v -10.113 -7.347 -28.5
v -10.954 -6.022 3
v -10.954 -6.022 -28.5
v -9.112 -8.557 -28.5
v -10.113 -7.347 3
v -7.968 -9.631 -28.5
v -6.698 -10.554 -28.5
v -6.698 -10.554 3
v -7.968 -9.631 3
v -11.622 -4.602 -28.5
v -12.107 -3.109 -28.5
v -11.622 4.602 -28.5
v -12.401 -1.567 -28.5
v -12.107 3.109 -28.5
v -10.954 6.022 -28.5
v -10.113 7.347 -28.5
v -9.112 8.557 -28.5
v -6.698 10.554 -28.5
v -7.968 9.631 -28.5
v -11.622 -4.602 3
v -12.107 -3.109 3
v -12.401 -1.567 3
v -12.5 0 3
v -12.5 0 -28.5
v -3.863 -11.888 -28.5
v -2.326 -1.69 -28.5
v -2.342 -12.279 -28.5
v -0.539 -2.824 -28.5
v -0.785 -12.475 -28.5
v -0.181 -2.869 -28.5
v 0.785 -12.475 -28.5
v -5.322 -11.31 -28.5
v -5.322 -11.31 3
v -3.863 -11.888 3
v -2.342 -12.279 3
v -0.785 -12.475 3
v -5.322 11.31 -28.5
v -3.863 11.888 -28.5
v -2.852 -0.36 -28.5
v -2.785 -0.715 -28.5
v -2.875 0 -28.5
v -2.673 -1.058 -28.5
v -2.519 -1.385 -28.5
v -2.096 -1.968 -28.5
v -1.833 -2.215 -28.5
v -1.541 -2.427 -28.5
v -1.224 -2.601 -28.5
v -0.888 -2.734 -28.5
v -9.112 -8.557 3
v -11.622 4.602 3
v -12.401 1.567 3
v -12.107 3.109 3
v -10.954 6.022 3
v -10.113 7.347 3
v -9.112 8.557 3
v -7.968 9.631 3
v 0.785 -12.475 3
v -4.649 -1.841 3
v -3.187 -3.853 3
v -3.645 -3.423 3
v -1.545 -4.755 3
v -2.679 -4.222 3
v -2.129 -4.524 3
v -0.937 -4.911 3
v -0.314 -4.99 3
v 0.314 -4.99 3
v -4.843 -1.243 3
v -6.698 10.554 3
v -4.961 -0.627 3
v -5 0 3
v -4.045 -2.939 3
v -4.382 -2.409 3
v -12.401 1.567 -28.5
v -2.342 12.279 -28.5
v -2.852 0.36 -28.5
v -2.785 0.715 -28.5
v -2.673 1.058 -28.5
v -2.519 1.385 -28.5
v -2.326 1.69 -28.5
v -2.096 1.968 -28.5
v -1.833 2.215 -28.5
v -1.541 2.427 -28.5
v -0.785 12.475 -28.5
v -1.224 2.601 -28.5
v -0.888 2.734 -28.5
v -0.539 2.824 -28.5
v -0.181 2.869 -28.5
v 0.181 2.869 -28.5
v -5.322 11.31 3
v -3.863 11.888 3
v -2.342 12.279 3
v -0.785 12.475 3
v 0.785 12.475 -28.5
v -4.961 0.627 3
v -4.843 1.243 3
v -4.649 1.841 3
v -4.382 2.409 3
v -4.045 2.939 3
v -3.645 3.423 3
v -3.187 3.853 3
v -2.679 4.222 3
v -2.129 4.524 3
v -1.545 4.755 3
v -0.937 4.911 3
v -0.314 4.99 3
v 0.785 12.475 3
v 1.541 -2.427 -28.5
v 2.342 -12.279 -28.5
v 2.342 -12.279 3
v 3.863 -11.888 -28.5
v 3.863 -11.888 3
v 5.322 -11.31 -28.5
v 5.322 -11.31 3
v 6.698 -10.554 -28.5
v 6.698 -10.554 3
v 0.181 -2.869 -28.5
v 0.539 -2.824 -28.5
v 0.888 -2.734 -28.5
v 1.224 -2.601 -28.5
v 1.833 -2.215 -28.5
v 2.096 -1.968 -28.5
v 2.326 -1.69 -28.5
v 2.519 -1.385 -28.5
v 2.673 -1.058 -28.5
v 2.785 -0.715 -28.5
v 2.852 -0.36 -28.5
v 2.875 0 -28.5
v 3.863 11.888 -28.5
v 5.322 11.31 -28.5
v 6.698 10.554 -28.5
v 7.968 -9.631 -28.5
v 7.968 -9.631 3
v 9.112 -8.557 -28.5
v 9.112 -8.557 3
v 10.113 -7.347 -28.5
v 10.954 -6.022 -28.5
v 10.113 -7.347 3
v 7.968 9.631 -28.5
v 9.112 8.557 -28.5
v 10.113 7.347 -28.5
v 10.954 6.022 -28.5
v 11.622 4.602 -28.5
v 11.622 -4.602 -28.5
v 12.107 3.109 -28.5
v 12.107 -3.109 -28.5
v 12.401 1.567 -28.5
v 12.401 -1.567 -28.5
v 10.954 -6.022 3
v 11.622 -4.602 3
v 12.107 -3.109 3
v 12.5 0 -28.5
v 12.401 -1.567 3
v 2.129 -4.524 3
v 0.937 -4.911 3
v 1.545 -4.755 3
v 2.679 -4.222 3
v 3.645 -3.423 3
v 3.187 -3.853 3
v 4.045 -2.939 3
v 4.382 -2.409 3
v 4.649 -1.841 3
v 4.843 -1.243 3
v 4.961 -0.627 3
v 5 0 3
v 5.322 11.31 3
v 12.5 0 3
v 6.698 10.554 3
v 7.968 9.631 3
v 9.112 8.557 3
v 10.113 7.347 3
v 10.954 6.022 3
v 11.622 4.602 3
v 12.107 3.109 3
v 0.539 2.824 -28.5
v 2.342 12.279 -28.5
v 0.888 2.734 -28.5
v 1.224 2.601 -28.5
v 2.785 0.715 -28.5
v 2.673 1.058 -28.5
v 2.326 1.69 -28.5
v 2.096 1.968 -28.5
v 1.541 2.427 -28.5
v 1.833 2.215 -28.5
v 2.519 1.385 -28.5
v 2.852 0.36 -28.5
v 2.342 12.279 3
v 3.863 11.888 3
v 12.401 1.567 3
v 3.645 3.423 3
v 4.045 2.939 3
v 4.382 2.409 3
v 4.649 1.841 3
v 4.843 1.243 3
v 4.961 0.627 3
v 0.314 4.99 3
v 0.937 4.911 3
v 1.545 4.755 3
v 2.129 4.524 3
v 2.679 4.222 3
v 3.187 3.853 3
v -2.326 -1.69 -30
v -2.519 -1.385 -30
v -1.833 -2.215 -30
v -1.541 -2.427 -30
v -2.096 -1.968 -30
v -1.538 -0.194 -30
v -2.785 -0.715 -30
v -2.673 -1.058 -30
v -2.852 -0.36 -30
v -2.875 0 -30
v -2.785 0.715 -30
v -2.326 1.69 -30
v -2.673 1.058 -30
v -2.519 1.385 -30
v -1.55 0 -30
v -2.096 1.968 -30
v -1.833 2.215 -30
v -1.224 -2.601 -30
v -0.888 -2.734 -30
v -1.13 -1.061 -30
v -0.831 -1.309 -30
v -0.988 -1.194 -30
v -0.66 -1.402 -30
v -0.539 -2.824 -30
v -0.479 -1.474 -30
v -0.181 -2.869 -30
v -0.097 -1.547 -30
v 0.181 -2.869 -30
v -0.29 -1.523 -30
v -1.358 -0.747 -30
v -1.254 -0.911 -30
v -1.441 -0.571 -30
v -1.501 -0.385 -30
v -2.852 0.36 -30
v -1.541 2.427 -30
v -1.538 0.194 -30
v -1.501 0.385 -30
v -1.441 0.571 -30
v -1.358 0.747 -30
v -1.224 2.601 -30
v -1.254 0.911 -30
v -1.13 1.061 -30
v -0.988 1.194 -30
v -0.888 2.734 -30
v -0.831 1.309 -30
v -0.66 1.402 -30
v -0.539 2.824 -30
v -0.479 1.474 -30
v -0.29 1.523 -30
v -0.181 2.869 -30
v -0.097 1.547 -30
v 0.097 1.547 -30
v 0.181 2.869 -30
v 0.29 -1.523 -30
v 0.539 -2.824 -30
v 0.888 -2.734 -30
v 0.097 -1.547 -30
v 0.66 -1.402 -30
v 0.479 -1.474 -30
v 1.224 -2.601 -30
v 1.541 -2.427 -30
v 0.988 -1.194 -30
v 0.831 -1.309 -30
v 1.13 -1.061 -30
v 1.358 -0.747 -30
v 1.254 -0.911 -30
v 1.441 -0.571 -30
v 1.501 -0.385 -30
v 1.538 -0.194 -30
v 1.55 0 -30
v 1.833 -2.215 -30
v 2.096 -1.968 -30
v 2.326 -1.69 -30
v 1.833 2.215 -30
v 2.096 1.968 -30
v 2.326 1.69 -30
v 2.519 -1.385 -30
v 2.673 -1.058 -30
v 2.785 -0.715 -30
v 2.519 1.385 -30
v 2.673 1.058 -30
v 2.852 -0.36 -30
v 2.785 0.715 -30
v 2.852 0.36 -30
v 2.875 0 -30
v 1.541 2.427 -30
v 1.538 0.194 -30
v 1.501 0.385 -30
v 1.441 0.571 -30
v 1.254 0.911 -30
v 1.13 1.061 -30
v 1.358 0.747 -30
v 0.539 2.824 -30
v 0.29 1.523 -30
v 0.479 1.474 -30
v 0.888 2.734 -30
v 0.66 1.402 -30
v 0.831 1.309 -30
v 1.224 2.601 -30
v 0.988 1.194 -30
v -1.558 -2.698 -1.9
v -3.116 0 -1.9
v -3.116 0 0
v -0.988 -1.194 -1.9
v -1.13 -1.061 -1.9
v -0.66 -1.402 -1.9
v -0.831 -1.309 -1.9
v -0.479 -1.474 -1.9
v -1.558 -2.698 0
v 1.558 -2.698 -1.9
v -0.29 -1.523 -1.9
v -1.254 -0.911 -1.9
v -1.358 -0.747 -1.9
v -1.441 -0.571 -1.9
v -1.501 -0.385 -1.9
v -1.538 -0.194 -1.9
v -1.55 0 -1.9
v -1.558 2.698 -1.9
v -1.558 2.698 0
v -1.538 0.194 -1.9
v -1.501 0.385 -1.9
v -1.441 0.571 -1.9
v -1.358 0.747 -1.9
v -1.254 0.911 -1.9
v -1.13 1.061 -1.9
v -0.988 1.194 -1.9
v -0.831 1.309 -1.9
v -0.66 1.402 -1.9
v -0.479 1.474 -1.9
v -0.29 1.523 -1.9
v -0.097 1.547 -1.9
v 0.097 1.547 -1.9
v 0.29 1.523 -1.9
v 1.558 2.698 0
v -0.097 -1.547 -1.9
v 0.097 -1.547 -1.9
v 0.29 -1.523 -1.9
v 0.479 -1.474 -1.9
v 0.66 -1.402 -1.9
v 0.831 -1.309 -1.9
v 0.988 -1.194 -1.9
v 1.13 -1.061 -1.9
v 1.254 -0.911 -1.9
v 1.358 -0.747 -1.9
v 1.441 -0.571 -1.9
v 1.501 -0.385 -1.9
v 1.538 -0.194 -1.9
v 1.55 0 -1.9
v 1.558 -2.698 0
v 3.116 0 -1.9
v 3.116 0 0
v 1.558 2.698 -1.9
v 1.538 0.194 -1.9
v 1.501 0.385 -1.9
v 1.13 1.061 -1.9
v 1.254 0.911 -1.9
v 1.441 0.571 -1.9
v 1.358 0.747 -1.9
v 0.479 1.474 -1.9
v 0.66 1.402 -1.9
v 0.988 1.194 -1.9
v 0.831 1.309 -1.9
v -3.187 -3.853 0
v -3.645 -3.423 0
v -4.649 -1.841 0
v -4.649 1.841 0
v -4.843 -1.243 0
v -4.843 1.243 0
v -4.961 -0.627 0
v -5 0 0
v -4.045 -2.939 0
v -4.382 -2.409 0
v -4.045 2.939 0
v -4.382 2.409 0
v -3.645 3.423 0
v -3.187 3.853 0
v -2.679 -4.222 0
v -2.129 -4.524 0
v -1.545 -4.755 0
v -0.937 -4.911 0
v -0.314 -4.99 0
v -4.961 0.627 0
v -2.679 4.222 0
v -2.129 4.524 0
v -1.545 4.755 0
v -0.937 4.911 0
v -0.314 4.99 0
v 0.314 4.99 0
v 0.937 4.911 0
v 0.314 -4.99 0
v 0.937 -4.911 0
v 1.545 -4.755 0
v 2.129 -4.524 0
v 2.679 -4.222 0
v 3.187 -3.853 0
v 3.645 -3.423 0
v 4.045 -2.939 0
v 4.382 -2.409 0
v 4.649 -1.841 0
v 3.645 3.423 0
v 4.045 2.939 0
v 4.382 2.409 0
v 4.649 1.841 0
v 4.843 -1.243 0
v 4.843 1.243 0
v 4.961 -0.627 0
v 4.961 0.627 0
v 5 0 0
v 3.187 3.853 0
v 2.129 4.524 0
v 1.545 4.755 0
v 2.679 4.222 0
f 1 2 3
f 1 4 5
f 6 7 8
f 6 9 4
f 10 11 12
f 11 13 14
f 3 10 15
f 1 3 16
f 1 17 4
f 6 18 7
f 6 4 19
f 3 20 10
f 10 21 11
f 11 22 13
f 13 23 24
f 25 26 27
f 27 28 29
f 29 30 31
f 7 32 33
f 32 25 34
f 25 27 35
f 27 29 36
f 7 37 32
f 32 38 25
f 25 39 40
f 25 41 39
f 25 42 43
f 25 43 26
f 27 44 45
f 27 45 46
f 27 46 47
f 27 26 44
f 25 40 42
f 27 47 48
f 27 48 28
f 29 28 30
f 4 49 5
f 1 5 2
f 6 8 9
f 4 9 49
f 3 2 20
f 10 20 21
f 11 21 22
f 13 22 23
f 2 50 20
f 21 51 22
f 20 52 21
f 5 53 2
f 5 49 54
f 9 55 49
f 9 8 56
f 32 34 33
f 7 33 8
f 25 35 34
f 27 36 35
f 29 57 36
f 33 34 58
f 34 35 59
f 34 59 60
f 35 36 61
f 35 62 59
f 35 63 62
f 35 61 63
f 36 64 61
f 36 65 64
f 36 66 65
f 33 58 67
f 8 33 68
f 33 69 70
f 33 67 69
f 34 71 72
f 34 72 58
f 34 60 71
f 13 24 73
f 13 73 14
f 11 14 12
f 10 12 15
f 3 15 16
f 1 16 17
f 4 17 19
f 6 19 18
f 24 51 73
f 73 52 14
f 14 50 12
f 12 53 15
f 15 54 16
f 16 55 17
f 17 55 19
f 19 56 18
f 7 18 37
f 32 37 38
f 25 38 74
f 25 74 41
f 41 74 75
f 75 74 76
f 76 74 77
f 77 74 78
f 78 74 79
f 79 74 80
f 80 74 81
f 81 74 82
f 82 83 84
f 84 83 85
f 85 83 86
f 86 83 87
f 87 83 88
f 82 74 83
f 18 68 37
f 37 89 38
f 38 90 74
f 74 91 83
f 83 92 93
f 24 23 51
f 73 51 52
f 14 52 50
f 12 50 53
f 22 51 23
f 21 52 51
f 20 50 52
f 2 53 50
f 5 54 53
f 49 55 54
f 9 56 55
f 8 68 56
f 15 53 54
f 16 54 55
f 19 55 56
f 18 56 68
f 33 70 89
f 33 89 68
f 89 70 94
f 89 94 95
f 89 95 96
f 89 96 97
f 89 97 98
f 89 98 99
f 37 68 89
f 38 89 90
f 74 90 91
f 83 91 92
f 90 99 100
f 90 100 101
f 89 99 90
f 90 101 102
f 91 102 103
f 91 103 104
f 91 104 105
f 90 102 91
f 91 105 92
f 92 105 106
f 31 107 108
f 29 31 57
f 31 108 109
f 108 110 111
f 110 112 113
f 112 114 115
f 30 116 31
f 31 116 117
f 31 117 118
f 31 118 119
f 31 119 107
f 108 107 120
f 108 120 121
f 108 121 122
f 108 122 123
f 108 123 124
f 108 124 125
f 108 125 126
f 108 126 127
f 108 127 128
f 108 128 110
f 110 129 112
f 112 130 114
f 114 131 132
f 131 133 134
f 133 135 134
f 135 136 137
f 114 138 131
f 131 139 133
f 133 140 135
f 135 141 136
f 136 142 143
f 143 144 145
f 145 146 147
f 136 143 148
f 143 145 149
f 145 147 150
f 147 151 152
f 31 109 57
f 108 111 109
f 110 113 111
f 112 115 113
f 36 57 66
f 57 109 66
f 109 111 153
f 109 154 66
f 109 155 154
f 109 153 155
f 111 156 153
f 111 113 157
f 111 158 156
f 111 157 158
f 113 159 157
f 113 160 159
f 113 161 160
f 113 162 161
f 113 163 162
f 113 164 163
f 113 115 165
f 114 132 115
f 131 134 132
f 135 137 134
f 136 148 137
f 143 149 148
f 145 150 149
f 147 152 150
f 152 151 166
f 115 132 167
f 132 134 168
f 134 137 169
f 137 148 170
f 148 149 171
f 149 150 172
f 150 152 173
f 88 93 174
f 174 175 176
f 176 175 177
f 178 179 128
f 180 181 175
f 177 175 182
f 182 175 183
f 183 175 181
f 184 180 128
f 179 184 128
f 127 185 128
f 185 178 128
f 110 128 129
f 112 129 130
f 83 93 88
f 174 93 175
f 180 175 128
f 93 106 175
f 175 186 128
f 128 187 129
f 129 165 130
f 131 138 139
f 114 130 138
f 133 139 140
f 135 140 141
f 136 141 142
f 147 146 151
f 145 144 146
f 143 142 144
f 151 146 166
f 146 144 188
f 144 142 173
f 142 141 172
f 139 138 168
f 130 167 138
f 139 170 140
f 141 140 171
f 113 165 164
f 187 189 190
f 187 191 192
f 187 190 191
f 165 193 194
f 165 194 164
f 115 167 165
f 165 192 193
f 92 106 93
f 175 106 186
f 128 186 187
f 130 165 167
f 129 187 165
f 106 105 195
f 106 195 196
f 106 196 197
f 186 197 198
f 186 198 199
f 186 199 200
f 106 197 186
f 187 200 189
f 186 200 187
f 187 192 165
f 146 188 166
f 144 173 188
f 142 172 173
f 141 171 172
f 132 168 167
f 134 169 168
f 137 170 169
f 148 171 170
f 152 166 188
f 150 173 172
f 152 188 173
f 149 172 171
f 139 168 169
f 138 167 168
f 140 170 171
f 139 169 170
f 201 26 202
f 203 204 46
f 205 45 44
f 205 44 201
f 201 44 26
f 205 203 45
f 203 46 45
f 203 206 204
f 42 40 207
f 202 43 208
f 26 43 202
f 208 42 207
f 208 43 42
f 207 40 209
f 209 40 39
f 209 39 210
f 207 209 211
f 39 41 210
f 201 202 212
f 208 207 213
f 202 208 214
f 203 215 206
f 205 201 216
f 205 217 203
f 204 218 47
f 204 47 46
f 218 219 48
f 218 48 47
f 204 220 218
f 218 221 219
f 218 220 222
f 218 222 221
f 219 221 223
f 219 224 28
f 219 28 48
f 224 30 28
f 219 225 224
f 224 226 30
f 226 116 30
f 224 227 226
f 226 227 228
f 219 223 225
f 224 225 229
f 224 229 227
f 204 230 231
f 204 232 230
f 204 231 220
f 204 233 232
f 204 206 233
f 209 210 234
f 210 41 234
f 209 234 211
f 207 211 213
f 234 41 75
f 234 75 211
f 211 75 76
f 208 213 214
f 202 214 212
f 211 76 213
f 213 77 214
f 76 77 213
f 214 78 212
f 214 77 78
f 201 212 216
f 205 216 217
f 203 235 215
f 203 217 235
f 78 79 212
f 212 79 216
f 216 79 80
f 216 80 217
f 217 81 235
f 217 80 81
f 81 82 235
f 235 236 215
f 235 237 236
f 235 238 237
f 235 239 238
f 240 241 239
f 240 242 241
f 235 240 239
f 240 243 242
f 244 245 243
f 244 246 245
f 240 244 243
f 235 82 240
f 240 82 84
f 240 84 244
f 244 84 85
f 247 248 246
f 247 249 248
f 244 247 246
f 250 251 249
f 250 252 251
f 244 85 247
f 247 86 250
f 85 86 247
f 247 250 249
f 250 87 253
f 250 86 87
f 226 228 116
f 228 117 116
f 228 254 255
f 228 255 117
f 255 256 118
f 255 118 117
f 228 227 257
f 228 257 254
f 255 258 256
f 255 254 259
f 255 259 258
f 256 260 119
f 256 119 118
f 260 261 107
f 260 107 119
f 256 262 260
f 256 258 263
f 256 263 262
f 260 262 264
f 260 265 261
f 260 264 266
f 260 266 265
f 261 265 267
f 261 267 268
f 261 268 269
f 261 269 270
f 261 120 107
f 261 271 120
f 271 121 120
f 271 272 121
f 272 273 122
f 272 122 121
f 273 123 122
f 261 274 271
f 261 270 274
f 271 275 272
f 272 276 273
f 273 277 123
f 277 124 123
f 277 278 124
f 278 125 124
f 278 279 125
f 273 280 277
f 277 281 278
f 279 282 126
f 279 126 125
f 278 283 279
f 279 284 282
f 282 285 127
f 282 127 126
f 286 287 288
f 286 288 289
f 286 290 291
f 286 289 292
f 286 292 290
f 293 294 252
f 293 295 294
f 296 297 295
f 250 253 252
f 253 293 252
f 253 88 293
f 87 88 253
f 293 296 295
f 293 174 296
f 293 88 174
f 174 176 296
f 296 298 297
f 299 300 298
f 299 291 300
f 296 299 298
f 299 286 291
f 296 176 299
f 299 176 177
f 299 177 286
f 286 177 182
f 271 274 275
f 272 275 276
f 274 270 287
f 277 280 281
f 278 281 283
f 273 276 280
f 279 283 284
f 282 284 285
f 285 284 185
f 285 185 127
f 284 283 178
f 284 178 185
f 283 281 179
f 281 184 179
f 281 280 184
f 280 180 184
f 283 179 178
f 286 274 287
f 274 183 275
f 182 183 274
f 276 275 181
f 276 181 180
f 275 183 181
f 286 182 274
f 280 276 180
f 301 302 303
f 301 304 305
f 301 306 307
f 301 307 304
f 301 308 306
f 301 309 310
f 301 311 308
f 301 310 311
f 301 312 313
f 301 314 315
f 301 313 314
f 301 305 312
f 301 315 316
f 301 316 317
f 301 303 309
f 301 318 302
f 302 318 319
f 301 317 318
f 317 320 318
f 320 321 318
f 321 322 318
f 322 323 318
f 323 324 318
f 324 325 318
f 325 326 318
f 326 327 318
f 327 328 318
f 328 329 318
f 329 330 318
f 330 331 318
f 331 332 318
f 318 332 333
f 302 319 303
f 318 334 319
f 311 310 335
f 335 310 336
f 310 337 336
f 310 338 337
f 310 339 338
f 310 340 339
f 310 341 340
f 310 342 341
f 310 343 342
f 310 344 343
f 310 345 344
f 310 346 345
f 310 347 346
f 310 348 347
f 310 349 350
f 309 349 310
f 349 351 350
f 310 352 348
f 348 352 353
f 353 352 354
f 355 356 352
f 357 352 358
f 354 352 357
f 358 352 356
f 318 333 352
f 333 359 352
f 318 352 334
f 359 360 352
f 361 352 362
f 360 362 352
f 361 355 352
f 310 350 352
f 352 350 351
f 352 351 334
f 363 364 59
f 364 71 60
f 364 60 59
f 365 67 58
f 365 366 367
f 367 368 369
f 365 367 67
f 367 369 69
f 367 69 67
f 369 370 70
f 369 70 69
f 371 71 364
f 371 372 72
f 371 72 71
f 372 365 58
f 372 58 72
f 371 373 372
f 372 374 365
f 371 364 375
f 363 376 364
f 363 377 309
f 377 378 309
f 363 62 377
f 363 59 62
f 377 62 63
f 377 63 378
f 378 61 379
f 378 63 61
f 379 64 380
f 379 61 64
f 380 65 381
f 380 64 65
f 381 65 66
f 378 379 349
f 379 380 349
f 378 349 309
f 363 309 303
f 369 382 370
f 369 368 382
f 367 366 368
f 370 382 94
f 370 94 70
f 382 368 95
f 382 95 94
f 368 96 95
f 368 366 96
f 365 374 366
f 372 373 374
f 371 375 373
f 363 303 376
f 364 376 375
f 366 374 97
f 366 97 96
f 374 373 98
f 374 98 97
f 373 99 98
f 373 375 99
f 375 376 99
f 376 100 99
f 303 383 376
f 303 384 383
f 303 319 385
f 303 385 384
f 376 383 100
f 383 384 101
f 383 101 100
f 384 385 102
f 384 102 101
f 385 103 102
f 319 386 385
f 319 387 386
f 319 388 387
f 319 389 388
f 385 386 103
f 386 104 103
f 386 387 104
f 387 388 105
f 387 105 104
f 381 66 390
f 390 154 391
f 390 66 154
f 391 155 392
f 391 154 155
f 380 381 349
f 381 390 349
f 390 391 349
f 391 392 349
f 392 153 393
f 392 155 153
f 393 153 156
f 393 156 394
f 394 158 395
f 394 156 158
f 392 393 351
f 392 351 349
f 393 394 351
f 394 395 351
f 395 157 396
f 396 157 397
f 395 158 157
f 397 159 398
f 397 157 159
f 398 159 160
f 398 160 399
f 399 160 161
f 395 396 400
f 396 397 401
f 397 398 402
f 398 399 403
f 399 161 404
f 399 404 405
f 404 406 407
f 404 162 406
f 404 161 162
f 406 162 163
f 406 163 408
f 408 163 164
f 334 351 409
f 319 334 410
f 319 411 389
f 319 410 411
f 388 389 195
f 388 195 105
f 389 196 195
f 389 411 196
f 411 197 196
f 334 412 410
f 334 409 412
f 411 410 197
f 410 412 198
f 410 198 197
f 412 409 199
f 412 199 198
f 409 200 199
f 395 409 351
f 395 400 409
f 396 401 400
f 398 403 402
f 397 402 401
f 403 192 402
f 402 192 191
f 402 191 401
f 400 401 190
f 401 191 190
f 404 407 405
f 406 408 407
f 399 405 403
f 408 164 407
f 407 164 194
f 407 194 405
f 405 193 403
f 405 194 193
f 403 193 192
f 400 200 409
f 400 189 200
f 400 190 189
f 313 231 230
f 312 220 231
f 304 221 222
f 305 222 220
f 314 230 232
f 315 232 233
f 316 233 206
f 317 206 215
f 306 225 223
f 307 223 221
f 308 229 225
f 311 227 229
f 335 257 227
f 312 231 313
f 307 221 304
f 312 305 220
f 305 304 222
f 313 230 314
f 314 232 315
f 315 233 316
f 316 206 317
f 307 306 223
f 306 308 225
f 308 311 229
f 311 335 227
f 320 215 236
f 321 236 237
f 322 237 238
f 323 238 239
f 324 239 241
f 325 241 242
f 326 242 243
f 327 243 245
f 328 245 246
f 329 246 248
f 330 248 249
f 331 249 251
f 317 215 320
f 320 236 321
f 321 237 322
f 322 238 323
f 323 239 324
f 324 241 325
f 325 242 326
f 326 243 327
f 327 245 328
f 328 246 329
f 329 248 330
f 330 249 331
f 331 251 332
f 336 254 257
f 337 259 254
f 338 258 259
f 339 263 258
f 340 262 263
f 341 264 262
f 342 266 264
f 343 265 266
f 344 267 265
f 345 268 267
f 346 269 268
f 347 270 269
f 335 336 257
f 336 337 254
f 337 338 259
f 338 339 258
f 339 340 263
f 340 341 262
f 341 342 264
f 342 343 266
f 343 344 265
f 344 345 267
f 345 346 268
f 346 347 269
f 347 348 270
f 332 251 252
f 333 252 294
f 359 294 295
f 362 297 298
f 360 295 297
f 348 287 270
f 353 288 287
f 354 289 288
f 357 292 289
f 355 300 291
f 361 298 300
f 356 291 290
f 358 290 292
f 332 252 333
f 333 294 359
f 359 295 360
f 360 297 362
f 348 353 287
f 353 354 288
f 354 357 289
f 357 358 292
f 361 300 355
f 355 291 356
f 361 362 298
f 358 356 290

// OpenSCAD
$fn = 50;


difference() {
	union() {
		translate(v = [0, 0, -28.5000000000]) {
			cylinder(h = 31.5000000000, r = 12.5000000000);
		}
		#translate(v = [0, 0, -30.0000000000]) {
			cylinder(h = 30, r = 2.8750000000);
		}
	}
	union() {
		translate(v = [0, 0, 0]) {
			rotate(a = [0, 0, 0]) {
				difference() {
					union() {
						translate(v = [0, 0, -1.9000000000]) {
							linear_extrude(height = 1.9000000000) {
								polygon(points = [[3.1158000000, 0.0000000000], [1.5579000000, 2.6983619531], [-1.5579000000, 2.6983619531], [-3.1158000000, 0.0000000000], [-1.5579000000, -2.6983619531], [1.5579000000, -2.6983619531]]);
							}
						}
					}
					union();
				}
			}
		}
		#cylinder(h = 3, r = 5.0000000000);
		#translate(v = [0, 0, -100.0000000000]) {
			cylinder(h = 200, r = 1.5500000000);
		}
	}
}
